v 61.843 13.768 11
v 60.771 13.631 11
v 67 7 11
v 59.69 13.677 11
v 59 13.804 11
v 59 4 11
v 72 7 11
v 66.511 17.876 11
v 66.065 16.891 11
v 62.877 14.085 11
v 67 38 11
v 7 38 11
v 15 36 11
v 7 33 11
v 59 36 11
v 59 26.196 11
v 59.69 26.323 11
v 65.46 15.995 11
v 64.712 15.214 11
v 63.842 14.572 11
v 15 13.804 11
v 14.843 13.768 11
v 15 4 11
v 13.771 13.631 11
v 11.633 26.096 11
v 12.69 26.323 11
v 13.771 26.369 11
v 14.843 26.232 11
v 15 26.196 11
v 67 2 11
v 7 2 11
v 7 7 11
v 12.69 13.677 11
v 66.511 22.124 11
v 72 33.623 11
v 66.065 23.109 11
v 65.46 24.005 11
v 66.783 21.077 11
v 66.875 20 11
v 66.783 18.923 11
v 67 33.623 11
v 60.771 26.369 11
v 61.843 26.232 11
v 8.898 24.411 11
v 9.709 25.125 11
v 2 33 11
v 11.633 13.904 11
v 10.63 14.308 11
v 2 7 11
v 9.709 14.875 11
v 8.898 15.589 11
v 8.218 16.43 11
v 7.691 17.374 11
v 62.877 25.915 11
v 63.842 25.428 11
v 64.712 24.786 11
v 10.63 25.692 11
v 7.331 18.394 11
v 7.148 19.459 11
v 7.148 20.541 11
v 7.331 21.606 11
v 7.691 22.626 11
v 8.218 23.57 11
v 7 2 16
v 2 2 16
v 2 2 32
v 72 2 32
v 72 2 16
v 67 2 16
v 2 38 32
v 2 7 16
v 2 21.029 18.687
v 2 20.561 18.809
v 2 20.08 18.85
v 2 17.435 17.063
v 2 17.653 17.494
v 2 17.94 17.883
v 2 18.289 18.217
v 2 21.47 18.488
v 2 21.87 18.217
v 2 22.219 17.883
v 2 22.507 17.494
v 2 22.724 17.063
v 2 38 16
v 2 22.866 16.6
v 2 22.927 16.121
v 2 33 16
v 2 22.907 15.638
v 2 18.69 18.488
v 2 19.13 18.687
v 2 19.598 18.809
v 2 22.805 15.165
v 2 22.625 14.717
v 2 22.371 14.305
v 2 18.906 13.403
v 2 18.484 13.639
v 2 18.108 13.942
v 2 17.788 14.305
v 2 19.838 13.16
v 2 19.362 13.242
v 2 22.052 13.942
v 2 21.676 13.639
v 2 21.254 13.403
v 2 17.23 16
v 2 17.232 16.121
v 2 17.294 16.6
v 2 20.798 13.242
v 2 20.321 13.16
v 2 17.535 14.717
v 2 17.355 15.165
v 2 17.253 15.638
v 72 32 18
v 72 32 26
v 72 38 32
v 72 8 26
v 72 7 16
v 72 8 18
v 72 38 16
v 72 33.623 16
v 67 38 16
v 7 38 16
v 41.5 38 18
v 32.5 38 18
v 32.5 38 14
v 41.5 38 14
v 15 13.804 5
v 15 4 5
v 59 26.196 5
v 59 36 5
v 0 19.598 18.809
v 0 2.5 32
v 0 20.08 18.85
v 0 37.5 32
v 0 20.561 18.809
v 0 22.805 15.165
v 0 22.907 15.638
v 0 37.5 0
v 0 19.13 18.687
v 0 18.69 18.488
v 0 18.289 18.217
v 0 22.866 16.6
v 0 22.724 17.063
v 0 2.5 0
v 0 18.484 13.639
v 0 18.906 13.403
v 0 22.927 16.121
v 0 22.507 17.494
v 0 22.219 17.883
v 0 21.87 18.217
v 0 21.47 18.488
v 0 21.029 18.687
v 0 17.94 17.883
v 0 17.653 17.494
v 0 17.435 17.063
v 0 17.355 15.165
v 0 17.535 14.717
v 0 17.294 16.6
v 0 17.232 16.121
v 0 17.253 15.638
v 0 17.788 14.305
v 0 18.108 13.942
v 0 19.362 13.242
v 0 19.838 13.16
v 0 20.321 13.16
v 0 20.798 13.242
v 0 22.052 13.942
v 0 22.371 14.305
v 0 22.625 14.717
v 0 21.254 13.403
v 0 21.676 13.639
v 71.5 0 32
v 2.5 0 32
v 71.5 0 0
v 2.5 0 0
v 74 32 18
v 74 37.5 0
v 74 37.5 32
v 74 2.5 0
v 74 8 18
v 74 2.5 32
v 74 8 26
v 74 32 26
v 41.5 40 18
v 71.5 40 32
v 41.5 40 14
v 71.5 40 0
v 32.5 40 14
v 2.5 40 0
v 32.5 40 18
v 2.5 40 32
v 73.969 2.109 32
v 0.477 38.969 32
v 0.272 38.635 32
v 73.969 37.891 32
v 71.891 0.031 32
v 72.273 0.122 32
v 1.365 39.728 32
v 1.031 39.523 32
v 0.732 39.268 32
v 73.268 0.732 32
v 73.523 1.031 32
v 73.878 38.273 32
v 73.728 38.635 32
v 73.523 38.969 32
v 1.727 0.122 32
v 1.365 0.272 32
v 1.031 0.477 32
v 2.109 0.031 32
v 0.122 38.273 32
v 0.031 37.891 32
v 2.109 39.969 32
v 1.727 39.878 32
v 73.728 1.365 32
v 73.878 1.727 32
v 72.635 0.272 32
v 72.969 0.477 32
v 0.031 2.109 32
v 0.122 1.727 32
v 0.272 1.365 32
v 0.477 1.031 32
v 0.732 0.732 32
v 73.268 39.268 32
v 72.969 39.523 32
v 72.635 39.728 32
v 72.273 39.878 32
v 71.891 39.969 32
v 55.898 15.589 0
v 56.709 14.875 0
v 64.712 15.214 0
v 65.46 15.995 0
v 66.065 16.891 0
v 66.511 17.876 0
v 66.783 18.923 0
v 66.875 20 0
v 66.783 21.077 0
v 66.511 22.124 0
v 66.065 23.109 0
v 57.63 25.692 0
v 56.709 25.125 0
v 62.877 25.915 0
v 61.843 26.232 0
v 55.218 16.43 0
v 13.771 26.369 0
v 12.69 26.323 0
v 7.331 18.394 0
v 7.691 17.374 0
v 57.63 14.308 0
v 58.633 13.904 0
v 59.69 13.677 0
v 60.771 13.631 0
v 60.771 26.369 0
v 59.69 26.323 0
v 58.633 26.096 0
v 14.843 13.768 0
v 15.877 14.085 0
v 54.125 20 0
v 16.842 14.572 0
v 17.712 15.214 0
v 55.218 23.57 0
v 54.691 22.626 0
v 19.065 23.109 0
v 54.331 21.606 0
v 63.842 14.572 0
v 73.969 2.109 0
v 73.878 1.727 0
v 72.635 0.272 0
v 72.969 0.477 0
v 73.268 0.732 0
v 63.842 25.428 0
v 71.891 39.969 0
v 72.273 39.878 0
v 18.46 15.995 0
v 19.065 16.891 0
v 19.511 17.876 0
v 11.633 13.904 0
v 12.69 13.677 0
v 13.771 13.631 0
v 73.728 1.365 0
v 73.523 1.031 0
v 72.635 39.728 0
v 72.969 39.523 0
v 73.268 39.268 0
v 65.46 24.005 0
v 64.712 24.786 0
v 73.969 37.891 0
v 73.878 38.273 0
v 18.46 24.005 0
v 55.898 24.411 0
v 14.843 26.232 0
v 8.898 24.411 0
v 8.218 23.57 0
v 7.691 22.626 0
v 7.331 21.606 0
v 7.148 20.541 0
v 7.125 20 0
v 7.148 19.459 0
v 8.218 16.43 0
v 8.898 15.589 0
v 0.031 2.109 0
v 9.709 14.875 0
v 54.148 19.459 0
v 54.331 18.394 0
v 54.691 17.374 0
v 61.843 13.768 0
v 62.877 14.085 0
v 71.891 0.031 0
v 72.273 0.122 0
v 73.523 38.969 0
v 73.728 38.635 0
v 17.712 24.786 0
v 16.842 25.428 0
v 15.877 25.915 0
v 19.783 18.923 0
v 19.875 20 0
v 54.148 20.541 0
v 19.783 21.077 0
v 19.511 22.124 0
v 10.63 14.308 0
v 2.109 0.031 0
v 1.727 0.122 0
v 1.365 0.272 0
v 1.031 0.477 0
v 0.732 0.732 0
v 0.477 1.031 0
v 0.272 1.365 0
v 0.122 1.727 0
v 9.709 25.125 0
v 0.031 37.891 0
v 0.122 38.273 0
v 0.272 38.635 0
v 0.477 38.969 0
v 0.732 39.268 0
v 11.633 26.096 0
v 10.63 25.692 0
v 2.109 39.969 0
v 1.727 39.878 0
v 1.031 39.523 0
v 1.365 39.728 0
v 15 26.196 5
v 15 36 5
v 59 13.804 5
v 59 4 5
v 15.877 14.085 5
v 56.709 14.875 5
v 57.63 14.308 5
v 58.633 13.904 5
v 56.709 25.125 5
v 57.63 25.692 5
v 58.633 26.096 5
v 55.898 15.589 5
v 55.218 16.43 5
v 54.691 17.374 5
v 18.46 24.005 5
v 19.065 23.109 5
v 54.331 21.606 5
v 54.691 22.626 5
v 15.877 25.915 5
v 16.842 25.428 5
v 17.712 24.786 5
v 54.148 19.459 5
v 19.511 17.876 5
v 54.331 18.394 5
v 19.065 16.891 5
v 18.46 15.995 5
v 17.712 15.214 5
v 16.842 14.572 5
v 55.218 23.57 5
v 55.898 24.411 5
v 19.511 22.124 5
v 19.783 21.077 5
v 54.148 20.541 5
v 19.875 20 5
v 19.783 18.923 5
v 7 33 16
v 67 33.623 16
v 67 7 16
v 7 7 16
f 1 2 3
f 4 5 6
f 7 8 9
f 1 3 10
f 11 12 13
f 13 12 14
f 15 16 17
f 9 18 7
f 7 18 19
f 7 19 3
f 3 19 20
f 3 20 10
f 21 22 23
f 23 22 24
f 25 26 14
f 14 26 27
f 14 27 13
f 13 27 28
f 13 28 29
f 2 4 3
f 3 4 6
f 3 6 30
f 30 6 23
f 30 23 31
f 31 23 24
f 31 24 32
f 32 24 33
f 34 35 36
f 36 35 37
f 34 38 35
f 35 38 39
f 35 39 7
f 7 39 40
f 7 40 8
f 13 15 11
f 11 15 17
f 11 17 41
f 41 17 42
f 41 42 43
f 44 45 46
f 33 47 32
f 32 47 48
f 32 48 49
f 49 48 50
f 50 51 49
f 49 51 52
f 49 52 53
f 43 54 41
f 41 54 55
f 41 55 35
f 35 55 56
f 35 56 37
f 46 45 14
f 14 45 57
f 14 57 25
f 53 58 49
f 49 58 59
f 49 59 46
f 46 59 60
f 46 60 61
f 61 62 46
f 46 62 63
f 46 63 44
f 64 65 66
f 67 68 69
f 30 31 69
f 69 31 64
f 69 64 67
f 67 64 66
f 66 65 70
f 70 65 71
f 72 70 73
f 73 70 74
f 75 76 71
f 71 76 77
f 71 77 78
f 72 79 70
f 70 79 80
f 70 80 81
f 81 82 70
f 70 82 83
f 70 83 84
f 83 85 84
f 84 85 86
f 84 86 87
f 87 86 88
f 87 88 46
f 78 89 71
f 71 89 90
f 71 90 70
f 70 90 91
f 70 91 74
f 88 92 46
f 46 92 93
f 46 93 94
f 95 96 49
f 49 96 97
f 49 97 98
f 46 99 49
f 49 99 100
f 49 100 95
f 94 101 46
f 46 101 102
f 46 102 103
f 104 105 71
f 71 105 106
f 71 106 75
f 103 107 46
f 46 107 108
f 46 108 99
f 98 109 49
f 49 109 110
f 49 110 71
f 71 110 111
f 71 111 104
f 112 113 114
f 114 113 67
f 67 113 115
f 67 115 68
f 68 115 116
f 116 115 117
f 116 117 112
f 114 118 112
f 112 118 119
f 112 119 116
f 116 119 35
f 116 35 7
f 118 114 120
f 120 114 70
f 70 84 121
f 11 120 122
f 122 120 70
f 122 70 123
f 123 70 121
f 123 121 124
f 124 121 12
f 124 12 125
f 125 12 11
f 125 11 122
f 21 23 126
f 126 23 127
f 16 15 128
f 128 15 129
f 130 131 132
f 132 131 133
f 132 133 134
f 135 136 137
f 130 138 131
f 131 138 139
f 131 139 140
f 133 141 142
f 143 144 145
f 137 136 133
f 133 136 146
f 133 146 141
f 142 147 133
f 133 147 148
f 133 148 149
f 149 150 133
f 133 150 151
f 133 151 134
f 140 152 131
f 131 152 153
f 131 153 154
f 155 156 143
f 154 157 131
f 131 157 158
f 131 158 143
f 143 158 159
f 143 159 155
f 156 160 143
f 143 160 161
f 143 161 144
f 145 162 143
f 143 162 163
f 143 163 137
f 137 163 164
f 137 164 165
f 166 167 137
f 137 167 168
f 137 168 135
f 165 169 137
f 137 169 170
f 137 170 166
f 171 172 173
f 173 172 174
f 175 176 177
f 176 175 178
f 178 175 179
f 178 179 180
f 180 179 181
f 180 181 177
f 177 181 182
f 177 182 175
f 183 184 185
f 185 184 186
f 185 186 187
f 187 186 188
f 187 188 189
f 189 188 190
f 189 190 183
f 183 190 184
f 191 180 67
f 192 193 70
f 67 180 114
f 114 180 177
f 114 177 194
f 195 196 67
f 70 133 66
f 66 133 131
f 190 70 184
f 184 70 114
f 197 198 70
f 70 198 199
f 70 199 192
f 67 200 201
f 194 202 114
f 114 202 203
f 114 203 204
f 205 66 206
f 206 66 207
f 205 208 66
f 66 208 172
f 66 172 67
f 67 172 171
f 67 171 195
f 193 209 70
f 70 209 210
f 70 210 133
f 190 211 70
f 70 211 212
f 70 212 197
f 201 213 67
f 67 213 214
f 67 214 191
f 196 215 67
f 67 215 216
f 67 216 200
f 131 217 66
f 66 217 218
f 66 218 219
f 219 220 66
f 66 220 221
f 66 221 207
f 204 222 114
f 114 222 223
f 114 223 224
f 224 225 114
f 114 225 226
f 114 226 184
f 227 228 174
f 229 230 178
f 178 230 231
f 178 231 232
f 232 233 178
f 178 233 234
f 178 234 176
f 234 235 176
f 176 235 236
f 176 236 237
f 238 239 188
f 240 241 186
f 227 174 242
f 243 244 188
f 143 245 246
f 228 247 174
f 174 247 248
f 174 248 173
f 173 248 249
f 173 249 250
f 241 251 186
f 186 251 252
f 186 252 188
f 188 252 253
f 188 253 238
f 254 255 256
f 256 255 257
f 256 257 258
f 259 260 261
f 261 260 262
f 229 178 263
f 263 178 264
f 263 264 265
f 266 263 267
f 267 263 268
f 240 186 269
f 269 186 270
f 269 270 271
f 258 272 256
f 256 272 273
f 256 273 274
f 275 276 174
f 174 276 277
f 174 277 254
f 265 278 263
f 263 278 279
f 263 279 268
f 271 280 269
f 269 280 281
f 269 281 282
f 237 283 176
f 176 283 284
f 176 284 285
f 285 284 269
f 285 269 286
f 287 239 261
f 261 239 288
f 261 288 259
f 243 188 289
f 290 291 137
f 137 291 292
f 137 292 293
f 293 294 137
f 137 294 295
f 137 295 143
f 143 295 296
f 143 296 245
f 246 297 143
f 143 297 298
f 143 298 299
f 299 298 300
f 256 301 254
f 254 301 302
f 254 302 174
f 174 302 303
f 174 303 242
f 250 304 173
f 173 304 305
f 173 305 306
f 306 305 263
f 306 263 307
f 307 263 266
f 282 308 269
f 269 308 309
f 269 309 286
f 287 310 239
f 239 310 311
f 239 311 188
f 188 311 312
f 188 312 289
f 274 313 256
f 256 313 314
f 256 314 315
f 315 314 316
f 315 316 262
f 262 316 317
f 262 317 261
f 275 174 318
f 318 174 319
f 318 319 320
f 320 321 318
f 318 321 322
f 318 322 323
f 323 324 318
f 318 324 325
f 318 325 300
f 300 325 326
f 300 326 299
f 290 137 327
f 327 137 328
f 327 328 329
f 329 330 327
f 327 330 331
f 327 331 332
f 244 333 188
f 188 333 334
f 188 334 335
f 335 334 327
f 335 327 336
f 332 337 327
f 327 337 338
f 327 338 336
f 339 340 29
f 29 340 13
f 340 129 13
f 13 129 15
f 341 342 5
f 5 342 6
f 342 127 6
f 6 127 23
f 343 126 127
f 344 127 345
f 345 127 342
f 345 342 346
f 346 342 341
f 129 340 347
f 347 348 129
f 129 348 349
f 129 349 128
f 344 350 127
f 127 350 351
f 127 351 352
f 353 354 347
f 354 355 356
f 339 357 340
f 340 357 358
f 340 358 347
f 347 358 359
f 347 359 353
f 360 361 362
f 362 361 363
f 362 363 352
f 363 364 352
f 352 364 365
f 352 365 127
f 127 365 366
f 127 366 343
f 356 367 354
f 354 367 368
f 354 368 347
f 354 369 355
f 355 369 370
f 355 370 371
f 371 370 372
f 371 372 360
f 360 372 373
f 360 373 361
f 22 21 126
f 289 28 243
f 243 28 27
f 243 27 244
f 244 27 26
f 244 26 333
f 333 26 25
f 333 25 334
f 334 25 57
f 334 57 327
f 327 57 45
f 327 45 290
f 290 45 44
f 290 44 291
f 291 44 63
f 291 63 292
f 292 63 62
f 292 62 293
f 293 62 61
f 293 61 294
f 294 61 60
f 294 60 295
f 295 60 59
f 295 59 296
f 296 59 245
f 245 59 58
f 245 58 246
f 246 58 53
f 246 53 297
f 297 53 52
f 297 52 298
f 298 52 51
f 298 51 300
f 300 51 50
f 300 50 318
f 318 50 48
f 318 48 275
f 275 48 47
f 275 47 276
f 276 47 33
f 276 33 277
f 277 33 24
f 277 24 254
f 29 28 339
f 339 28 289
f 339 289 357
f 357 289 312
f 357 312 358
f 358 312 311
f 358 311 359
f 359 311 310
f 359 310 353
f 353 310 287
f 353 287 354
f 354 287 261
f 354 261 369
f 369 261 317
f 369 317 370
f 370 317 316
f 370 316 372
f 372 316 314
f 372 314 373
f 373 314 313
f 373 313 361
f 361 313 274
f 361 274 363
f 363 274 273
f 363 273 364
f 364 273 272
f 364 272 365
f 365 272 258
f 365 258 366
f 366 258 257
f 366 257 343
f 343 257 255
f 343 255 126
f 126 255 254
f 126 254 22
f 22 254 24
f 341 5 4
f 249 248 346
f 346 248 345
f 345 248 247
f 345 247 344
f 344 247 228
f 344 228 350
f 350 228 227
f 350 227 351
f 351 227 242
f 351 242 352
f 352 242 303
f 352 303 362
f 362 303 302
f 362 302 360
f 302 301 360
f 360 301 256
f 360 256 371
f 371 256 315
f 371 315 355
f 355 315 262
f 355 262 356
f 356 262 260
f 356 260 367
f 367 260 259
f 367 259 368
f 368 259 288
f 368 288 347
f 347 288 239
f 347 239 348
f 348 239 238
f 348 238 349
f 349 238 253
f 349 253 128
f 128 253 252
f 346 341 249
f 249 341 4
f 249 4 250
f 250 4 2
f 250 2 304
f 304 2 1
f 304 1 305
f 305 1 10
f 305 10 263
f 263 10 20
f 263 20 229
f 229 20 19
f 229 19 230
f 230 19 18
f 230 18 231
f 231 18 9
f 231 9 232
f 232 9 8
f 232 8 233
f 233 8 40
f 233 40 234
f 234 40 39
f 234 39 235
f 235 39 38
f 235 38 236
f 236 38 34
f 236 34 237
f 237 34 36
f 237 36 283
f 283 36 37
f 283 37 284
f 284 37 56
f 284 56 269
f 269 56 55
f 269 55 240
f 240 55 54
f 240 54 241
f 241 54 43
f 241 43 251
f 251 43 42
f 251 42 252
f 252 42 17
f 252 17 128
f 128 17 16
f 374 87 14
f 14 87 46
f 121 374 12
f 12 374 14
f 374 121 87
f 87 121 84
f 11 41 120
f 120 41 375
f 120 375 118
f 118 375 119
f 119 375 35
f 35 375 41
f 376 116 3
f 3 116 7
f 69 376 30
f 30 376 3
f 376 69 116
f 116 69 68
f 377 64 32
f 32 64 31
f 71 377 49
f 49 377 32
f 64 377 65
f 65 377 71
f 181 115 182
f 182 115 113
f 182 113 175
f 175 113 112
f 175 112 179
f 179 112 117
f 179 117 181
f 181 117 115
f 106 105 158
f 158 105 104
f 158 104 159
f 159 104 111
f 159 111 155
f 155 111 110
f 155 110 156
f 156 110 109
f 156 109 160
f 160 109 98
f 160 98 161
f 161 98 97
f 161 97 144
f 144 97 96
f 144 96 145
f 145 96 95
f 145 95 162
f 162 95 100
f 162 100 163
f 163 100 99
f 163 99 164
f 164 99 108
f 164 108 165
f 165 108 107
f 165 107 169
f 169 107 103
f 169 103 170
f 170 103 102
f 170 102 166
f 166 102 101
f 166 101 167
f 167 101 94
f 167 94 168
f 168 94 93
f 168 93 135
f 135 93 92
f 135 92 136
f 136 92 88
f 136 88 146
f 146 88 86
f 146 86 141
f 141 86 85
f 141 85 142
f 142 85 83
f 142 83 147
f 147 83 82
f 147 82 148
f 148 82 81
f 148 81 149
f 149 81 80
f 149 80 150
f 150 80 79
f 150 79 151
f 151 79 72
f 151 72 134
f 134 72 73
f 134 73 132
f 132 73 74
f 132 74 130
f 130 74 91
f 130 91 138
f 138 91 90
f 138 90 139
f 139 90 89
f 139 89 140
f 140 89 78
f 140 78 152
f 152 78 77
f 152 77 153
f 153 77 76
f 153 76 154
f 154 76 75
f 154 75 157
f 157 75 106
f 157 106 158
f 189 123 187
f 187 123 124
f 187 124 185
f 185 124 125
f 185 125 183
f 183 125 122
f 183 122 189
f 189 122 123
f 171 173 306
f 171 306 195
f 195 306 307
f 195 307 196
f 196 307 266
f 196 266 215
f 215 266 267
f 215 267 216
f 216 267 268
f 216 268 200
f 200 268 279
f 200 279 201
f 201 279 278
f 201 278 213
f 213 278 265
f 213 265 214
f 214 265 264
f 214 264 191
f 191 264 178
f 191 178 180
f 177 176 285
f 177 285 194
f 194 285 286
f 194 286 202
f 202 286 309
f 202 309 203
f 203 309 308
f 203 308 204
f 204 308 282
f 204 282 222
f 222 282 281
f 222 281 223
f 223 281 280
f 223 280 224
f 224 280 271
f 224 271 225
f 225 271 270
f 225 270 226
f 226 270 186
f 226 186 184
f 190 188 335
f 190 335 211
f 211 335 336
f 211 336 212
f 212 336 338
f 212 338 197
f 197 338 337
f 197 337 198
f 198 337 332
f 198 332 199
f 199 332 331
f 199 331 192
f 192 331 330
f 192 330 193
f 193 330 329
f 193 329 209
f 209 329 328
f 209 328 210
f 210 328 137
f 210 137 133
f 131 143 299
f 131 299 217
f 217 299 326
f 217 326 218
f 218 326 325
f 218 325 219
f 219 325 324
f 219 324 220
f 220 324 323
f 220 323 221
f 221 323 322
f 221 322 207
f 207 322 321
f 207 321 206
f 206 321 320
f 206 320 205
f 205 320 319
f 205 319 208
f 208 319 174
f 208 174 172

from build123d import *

# Parameters (mm, degrees)
SKETCH1_W               = 74
SKETCH1_H               = 40
BOSS_EXTRUDE1_DEPTH     = 32
SKETCH2_W               = 70
SKETCH2_H               = 36
CUT_EXTRUDE1_DEPTH      = 21
SKETCH3_W               = 44
SKETCH3_H               = 32
CUT_EXTRUDE2_DEPTH      = 6
CUT_EXTRUDE3_DEPTH      = 35
CUT_EXTRUDE3_DEPTH_BACK = 20
SKETCH4_R               = 6.375
SKETCH5_W               = 5
SKETCH5_H               = 5
BOSS_EXTRUDE2_DEPTH     = 5
SKETCH6_W               = 8
SKETCH6_H               = 24
CUT_EXTRUDE4_DEPTH      = 5
SKETCH7_R               = 2.85
CUT_EXTRUDE5_DEPTH      = 5
SKETCH8_W               = 9
SKETCH8_H               = 4
CUT_EXTRUDE6_DEPTH      = 5
FILLET1_R               = 2.5


with BuildPart() as part:
    # Sketch1 → Boss-Extrude1 (new body)
    with BuildSketch(Plane.XY):
        with Locations((37, 20)):
            Rectangle(SKETCH1_W, SKETCH1_H)
    extrude(amount=BOSS_EXTRUDE1_DEPTH)

    # Sketch2 → Cut-Extrude1 (cut)
    with BuildSketch(Plane.XY.offset(32)):
        with Locations((37, 20)):
            Rectangle(SKETCH2_W, SKETCH2_H)
    extrude(amount=-CUT_EXTRUDE1_DEPTH, mode=Mode.SUBTRACT)

    # Sketch3 → Cut-Extrude2 (cut)
    with BuildSketch(Plane.XY.offset(11)):
        with Locations((37, 20)):
            Rectangle(SKETCH3_W, SKETCH3_H)
    extrude(amount=-CUT_EXTRUDE2_DEPTH, mode=Mode.SUBTRACT)

    # Sketch4 → Cut-Extrude3 (cut, two sides: drawn at the far end of the back side and taken through both)
    with BuildSketch(Plane.XY.offset(5).offset(-CUT_EXTRUDE3_DEPTH_BACK)):
        with Locations(Location((13.5, 20, 0), (0, 0, 76.391039369))):
            Circle(SKETCH4_R)
        with Locations(Location((60.5, 20, 0), (0, 0, 103.608960631))):
            Circle(SKETCH4_R)
    extrude(amount=CUT_EXTRUDE3_DEPTH + CUT_EXTRUDE3_DEPTH_BACK, mode=Mode.SUBTRACT)

    # Sketch5 → Boss-Extrude2 (add)
    with BuildSketch(Plane.XY.offset(11)):
        with Locations((4.5, 35.5)):
            Rectangle(SKETCH5_W, SKETCH5_H)
        with Locations((69.5, 36.123202266)):
            Rectangle(SKETCH5_W, SKETCH5_H)
        with Locations((69.5, 4.5)):
            Rectangle(SKETCH5_W, SKETCH5_H)
        with Locations((4.5, 4.5)):
            Rectangle(SKETCH5_W, SKETCH5_H)
    extrude(amount=BOSS_EXTRUDE2_DEPTH)

    # Sketch6 → Cut-Extrude4 (cut)
    with BuildSketch(Plane(origin=(74, 0, 0), x_dir=(0, 0, -1), z_dir=(1, 0, 0))):
        with Locations((-22, 20)):
            Rectangle(SKETCH6_W, SKETCH6_H)
    extrude(amount=-CUT_EXTRUDE4_DEPTH, mode=Mode.SUBTRACT)

    # Sketch7 → Cut-Extrude5 (cut)
    with BuildSketch(Plane.ZY):
        with Locations((16, 20.079680134)):
            Circle(SKETCH7_R)
    extrude(amount=-CUT_EXTRUDE5_DEPTH, mode=Mode.SUBTRACT)

    # Sketch8 → Cut-Extrude6 (cut)
    with BuildSketch(Plane(origin=(0, 40, 0), x_dir=(1, 0, 0), z_dir=(0, 1, 0))):
        with Locations((37, -16)):
            Rectangle(SKETCH8_W, SKETCH8_H)
    extrude(amount=-CUT_EXTRUDE6_DEPTH, mode=Mode.SUBTRACT)

    # Fillet1
    fillet1_edges = [part.edges().sort_by_distance(p)[0] for p in [
        (0, 40, 16),
        (74, 40, 16),
        (74, 0, 16),
        (0, 0, 16),
    ]]
    fillet(fillet1_edges, radius=FILLET1_R)


solid = part.part
